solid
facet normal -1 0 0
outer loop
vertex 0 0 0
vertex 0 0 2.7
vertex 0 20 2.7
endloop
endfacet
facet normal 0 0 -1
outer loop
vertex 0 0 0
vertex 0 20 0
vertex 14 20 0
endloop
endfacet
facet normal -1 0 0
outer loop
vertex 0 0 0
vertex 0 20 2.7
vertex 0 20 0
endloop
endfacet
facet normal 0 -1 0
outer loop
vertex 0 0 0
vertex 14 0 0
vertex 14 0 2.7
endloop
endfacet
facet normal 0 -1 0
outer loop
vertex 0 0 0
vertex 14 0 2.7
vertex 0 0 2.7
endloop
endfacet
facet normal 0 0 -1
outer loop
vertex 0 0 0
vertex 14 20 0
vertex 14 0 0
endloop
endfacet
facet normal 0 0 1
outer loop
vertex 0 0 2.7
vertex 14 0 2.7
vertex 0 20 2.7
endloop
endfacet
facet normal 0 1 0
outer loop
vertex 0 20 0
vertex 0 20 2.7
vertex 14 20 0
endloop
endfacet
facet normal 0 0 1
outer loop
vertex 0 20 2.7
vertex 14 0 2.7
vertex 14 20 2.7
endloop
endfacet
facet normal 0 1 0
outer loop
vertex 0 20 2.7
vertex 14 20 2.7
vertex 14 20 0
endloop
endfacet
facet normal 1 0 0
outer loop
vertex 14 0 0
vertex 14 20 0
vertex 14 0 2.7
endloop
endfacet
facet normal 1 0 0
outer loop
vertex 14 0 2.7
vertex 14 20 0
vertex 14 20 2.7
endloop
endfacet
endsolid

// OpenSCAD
/* Warning, this is a very basic generator with a lot of approximation 
input data : [MQFP, B9X, 14x20x2.7mm, 100, , A, C04-17024A]
generated by com.zoubworld.electronics.cad.model3d.Basic
Date : Sun Feb 15 10:50:49 CET 2026
*/

//body
color("black")
translate([0,0,0])
cube([14.0,20.0,2.7], center=false);
